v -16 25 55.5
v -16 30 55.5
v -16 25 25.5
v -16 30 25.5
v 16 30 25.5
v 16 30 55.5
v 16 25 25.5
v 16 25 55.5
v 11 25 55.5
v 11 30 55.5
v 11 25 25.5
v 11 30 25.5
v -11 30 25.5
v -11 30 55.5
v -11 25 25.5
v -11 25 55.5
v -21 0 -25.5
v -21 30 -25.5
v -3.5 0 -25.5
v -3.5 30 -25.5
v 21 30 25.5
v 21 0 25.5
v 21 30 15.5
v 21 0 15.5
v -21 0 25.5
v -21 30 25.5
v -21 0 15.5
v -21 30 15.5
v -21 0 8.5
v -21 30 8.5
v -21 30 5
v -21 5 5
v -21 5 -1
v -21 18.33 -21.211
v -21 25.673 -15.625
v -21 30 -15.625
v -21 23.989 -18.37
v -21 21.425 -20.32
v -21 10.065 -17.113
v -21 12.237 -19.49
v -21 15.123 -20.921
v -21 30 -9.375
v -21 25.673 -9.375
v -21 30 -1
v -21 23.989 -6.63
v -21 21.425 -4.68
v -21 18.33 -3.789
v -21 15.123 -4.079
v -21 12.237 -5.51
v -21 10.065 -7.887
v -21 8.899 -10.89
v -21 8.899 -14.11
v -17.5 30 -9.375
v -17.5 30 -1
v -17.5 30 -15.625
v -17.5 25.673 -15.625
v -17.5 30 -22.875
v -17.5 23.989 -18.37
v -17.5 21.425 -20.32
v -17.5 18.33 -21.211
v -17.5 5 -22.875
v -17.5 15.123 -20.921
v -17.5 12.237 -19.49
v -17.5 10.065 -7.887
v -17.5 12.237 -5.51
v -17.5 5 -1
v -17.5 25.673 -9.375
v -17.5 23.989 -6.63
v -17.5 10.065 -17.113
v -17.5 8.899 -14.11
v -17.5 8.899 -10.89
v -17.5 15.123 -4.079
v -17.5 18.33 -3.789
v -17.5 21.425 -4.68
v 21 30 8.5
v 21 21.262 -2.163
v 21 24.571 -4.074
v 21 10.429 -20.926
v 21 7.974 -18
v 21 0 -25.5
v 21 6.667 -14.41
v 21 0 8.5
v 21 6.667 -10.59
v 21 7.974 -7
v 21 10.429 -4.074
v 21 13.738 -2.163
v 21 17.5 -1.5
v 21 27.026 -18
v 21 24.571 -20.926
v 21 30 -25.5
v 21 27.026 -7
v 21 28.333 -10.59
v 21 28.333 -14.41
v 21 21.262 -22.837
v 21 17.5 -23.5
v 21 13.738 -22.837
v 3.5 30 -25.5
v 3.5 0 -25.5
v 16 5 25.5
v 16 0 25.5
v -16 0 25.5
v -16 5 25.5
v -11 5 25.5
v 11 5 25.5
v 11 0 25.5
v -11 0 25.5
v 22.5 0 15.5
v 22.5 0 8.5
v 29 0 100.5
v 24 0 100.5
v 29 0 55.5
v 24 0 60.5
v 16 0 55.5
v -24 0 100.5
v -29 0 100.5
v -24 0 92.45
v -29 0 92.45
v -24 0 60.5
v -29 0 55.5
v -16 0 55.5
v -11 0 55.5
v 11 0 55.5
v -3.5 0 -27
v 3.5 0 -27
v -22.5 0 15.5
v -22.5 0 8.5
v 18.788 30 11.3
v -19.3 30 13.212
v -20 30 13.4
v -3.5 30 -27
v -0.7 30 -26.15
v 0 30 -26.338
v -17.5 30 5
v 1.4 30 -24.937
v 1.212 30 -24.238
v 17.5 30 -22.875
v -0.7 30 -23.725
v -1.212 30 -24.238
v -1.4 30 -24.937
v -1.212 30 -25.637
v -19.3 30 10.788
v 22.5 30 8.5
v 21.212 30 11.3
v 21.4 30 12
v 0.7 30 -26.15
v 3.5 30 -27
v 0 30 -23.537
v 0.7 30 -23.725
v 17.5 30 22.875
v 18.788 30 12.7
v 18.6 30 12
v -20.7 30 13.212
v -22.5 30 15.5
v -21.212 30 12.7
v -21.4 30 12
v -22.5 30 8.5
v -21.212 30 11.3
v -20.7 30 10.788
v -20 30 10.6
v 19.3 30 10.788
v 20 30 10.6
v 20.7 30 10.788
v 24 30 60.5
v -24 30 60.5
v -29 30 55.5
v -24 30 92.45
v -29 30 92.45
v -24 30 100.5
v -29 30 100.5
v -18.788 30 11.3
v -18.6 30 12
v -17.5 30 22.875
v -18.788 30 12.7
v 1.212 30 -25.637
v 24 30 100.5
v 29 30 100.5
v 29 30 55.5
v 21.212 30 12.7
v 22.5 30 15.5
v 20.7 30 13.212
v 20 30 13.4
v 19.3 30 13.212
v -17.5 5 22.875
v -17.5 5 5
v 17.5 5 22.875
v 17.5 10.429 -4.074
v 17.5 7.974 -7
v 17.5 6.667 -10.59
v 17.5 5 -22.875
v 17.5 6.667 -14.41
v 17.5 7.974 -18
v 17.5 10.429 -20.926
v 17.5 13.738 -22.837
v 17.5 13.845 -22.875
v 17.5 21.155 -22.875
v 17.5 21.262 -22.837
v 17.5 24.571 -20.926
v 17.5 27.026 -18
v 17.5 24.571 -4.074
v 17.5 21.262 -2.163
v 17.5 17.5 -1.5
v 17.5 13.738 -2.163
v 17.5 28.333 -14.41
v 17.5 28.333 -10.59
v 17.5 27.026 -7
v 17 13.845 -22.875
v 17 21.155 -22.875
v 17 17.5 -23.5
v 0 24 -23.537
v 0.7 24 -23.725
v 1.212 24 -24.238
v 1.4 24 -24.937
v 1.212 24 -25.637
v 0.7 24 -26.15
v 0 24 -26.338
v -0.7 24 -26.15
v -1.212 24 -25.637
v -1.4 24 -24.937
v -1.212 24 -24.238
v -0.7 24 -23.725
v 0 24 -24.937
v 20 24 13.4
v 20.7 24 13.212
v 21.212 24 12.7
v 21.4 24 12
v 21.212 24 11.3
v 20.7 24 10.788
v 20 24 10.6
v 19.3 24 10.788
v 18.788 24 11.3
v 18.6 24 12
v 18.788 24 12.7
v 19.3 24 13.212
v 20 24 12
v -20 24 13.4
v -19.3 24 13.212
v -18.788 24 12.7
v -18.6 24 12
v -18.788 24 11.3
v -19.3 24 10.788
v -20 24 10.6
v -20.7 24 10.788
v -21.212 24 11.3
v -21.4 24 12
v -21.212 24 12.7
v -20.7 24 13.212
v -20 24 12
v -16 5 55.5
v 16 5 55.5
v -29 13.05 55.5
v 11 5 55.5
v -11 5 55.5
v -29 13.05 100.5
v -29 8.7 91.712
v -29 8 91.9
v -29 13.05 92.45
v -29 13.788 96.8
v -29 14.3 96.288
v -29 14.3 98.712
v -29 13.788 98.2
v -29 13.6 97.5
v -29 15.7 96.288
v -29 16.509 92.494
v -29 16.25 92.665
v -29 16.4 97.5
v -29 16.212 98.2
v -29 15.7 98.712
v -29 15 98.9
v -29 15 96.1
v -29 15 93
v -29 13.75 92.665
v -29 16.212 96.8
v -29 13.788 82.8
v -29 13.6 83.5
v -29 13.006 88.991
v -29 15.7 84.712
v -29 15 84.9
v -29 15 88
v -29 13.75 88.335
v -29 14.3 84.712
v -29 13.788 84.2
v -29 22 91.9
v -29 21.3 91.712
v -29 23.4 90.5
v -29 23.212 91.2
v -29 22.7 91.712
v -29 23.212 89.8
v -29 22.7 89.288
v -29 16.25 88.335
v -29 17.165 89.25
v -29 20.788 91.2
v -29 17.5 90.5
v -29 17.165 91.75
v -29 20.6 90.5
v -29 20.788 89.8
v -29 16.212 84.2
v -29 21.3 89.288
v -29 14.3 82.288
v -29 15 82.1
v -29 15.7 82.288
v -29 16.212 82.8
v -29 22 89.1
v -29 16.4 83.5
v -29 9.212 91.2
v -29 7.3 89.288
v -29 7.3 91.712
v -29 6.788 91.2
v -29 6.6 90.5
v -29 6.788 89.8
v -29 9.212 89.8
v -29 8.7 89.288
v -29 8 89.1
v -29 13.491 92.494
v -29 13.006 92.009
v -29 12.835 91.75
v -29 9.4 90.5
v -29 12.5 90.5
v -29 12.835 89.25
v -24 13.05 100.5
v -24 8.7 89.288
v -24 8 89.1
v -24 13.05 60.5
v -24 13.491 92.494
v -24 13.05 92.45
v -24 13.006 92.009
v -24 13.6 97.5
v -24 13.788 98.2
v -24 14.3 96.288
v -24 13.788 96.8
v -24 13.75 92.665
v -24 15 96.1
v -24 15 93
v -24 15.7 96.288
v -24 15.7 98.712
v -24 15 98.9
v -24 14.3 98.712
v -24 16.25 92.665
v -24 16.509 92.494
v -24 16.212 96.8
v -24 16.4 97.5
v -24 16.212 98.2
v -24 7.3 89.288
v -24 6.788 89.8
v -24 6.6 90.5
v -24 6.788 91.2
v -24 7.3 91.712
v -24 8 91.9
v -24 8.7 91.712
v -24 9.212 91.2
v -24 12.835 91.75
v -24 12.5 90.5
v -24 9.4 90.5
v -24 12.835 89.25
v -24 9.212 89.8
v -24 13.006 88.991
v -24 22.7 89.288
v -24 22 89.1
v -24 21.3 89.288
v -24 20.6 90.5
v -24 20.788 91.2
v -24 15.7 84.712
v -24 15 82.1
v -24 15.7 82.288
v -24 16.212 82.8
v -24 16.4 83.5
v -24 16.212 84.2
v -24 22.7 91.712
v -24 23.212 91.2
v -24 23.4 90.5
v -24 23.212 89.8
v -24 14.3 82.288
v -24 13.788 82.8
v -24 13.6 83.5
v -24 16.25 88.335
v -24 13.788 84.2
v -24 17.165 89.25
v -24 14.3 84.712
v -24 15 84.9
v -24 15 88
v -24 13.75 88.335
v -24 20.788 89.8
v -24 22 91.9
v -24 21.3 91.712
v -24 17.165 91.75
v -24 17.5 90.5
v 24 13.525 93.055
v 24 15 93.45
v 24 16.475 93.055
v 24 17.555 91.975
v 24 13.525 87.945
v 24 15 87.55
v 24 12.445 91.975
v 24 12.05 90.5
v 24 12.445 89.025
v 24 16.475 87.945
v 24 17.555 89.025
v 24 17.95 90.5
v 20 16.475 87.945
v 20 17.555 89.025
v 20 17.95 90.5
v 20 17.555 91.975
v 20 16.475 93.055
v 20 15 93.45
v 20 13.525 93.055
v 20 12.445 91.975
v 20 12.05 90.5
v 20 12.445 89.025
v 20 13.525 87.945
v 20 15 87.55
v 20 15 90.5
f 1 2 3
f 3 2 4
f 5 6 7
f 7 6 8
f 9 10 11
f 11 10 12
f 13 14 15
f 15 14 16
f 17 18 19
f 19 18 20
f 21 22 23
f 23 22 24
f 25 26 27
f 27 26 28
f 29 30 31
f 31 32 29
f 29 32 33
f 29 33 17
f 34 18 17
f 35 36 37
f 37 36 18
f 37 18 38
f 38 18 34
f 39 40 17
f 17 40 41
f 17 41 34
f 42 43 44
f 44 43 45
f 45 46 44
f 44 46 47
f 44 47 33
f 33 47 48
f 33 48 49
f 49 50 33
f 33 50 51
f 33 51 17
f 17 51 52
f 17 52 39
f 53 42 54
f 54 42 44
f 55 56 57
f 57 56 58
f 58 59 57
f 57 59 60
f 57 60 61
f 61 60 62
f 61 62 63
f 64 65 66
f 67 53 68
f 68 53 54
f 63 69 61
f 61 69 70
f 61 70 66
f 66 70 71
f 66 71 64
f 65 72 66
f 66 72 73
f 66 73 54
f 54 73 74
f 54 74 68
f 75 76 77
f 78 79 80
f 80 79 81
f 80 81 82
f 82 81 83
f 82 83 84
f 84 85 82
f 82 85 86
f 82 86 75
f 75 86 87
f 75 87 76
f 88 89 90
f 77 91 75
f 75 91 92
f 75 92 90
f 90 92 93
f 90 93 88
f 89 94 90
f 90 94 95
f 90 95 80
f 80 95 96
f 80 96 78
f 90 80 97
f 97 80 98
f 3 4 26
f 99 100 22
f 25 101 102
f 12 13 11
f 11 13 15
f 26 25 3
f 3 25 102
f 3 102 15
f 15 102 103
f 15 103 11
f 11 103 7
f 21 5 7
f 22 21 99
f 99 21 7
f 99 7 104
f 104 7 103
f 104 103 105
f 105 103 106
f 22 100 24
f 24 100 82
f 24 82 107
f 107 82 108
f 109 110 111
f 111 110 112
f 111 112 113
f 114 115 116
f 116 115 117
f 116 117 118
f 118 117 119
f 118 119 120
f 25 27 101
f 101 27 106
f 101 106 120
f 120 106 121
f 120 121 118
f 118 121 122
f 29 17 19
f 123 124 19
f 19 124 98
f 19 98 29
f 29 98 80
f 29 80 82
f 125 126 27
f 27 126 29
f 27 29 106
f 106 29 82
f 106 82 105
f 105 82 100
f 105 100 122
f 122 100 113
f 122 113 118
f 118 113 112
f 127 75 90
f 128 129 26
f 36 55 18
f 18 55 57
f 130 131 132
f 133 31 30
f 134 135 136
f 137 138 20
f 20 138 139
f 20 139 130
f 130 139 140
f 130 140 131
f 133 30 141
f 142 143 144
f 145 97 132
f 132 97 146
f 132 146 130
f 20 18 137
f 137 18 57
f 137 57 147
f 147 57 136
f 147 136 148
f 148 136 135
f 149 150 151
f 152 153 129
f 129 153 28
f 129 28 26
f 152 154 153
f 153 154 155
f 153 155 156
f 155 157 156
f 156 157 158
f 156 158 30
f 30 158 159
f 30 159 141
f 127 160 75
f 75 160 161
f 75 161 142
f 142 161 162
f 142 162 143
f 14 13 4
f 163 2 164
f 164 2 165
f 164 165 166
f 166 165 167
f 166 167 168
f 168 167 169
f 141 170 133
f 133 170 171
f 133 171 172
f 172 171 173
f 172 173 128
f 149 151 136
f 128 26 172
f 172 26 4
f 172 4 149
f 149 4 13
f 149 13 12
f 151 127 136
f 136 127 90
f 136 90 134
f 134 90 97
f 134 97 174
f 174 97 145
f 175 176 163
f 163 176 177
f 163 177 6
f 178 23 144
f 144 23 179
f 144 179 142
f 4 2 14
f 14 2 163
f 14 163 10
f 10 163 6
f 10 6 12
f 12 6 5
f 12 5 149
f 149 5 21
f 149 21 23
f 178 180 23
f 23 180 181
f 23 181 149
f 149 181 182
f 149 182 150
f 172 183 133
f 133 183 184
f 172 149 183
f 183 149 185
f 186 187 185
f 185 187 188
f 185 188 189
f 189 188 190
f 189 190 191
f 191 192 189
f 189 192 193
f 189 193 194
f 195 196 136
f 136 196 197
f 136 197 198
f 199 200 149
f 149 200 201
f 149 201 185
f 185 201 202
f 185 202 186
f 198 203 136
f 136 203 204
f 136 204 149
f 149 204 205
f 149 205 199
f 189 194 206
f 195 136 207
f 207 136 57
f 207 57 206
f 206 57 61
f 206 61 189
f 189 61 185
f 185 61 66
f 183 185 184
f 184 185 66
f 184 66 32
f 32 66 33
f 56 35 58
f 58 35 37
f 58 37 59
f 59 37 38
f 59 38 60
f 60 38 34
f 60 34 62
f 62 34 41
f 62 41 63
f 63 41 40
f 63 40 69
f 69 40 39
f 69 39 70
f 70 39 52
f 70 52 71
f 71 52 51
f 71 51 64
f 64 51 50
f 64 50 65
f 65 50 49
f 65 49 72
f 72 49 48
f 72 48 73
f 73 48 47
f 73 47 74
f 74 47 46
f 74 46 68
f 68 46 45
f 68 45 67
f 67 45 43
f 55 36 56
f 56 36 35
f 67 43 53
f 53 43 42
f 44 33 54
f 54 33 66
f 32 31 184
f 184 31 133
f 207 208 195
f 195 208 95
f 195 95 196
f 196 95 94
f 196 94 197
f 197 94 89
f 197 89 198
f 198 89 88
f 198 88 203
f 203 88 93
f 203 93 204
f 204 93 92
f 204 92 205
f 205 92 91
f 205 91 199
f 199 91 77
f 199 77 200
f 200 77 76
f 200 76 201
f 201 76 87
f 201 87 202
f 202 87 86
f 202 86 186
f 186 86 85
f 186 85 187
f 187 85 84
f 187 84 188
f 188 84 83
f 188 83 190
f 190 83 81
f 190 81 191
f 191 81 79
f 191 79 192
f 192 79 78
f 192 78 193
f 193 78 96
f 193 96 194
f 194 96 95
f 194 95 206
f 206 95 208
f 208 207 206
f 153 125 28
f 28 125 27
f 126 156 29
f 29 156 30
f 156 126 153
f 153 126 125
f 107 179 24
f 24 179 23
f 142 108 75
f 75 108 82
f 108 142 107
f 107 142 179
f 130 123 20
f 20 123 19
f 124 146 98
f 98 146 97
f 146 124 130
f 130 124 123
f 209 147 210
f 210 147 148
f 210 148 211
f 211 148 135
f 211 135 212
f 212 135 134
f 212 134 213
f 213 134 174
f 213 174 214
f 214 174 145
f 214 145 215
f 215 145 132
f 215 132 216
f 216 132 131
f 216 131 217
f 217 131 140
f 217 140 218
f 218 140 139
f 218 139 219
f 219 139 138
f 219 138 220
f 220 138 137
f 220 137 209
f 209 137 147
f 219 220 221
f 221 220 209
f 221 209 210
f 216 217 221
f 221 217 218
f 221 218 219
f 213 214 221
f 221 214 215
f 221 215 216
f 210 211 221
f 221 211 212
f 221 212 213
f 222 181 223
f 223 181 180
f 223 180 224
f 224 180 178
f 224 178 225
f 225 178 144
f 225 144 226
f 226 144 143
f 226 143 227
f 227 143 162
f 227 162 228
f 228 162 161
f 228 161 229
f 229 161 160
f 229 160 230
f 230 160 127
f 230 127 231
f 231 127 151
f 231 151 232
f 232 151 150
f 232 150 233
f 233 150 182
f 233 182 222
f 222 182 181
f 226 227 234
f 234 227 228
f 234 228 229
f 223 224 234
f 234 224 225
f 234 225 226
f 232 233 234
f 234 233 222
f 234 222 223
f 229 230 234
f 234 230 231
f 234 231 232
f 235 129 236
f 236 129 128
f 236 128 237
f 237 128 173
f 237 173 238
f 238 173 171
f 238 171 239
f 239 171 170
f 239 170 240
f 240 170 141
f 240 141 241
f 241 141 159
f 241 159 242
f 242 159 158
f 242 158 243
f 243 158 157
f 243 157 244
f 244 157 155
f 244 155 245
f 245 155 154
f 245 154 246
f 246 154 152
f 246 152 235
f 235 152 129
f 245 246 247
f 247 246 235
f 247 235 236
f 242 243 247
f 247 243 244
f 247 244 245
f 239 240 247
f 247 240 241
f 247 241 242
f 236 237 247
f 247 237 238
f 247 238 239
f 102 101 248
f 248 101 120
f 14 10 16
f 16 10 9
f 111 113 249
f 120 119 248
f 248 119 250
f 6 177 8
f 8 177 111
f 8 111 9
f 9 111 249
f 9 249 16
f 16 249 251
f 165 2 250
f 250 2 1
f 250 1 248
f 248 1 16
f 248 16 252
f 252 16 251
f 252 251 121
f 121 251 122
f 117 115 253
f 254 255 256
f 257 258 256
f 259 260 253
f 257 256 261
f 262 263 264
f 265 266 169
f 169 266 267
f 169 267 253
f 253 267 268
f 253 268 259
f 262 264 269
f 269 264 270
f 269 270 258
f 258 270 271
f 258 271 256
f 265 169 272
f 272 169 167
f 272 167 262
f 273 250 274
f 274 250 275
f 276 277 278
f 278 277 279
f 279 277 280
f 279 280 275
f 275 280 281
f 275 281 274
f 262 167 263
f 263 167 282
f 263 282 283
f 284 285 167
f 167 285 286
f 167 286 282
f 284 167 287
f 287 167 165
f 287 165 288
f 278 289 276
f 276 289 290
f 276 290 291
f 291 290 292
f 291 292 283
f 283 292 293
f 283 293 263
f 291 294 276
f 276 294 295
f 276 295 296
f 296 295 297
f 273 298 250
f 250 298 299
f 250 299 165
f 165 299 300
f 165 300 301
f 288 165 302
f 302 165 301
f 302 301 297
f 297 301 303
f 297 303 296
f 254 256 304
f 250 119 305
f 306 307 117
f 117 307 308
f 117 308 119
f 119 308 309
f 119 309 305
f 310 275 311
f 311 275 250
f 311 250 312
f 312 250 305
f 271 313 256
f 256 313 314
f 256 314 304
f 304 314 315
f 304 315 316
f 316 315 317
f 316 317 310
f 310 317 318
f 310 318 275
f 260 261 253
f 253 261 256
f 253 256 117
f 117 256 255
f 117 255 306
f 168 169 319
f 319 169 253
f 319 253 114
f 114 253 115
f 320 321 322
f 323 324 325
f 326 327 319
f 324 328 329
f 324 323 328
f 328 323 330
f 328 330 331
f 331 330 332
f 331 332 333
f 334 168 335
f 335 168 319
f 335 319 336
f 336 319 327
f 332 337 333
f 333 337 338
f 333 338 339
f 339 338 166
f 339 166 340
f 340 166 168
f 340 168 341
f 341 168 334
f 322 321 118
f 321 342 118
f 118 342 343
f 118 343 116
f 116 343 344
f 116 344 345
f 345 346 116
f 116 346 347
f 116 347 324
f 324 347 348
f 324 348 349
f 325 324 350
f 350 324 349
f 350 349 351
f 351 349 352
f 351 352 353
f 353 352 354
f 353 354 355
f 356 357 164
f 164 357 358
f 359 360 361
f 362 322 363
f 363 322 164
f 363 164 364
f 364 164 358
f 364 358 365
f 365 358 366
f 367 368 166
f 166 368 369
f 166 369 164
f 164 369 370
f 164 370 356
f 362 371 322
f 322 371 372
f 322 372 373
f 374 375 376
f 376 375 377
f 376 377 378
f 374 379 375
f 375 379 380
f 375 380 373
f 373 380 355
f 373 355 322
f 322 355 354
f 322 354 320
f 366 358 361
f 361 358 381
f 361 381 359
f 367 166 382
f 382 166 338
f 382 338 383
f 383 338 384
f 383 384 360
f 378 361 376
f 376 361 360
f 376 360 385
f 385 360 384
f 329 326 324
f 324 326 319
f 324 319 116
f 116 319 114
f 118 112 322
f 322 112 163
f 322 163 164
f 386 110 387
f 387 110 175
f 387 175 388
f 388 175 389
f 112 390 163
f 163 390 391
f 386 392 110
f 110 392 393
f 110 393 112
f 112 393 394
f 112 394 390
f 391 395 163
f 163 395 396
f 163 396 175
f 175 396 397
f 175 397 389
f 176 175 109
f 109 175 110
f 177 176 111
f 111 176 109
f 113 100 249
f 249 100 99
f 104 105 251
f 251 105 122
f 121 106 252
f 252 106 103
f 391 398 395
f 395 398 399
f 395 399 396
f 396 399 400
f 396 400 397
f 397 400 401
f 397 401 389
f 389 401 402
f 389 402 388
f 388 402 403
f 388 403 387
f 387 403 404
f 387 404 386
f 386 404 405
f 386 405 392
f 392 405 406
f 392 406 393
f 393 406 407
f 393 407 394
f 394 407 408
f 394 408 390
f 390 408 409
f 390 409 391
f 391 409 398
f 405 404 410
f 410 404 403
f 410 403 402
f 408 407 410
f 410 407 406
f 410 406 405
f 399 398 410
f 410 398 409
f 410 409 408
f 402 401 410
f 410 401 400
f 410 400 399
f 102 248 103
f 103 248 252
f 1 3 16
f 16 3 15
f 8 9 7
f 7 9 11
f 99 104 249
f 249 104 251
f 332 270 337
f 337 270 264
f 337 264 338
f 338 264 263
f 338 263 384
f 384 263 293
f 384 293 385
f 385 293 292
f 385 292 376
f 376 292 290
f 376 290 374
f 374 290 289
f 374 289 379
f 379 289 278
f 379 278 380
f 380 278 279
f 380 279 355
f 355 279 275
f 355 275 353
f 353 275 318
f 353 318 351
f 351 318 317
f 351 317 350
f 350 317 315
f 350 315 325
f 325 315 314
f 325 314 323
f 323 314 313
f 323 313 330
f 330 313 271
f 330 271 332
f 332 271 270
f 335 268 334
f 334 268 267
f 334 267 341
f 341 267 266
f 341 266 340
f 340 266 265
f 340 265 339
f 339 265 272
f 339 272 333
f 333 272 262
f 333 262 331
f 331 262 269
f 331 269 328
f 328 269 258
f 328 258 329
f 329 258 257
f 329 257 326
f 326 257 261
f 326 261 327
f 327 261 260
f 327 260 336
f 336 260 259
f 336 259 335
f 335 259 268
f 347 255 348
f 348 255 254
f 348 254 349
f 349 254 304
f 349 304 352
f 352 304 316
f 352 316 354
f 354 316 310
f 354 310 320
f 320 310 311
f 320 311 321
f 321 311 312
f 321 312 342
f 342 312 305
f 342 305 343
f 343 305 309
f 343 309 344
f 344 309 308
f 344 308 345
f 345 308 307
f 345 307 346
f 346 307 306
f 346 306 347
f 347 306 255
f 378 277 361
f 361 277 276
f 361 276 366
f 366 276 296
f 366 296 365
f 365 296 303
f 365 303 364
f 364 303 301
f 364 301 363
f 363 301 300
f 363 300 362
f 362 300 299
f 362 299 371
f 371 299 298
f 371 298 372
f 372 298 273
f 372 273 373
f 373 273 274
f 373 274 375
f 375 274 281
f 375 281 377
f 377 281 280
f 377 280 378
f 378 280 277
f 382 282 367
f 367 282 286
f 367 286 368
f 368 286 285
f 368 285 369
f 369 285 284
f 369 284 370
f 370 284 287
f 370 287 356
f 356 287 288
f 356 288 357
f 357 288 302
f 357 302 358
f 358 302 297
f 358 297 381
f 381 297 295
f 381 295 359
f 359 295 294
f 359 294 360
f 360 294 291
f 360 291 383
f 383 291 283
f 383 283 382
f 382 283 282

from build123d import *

# Parameters (mm, degrees)
BOSS_EXTRUDE1_DEPTH = 5
SKETCH3_W           = 42
SKETCH3_H           = 51
SKETCH3_W_2         = 35
SKETCH3_H_2         = 45.75
BOSS_EXTRUDE3_DEPTH = 25
SKETCH4_R           = 8.75
CUT_EXTRUDE2_DEPTH  = 5
CUT_EXTRUDE3_DEPTH  = 4
SKETCH7_W           = 6
SKETCH7_H           = 25
CUT_EXTRUDE4_DEPTH  = 4
SKETCH9_R           = 11
CUT_EXTRUDE5_DEPTH  = 4
SKETCH16_W          = 7
SKETCH16_H          = 30
BOSS_EXTRUDE5_DEPTH = 1.5
SKETCH17_W          = 7
SKETCH17_H          = 30
BOSS_EXTRUDE6_DEPTH = 1.5
SKETCH19_W          = 7
SKETCH19_H          = 30
BOSS_EXTRUDE7_DEPTH = 1.5
SKETCH18_R          = 1.4
CUT_EXTRUDE7_DEPTH  = 6
SKETCH1_3_W         = 5
SKETCH1_3_H         = 30
SKETCH1_3_H_2       = 40
BOSS_EXTRUDE8_DEPTH = 30
SKETCH21_R          = 2.95
BOSS_EXTRUDE9_DEPTH = 4
SKETCH24_W          = 30
SKETCH24_H          = 20
CUT_EXTRUDE8_DEPTH  = 32
SKETCH25_R          = 2.5
SKETCH25_R_2        = 1.4
CUT_EXTRUDE9_DEPTH  = 5


with BuildPart() as part:
    # Sketch1 → Boss-Extrude1 (new body)
    with BuildSketch(Plane(origin=(0, 0, 0), x_dir=(1, 0, 0), z_dir=(0, 1, 0))):
        Polygon((21, 25.5), (-21, 25.5), (-21, -25.5), (-16, -25.5), (-11, -25.5), (11, -25.5), (16, -25.5), (21, -25.5), align=None)
    extrude(amount=BOSS_EXTRUDE1_DEPTH)

    # Sketch3 → Boss-Extrude3 (add)
    with BuildSketch(Plane(origin=(0, 5, 0), x_dir=(1, 0, 0), z_dir=(0, 1, 0))):
        Rectangle(SKETCH3_W, SKETCH3_H)
        Rectangle(SKETCH3_W_2, SKETCH3_H_2, mode=Mode.SUBTRACT)
    extrude(amount=BOSS_EXTRUDE3_DEPTH)

    # Sketch4 → Cut-Extrude2 (cut)
    with BuildSketch(Plane.ZY.offset(21)):
        with Locations((-12.5, 17.5)):
            Circle(SKETCH4_R)
    extrude(amount=-CUT_EXTRUDE2_DEPTH, mode=Mode.SUBTRACT)

    # Sketch6 → Cut-Extrude3 (cut)
    with BuildSketch(Plane(origin=(-17.5, 0, 0), x_dir=(0, 0, -1), z_dir=(1, 0, 0))):
        with BuildLine():
            Line((9.375, 17.5), (9.375, 30))
            Line((9.375, 30), (15.625, 30))
            Line((15.625, 30), (15.625, 17.5))
            ThreePointArc((15.625, 17.5), (12.5, 14.375), (9.375, 17.5))
        make_face()
    extrude(amount=-CUT_EXTRUDE3_DEPTH, mode=Mode.SUBTRACT)

    # Sketch7 → Cut-Extrude4 (cut)
    with BuildSketch(Plane.ZY.offset(21)):
        with Locations((2, 17.5)):
            Rectangle(SKETCH7_W, SKETCH7_H)
    extrude(amount=-CUT_EXTRUDE4_DEPTH, mode=Mode.SUBTRACT)

    # Sketch9 → Cut-Extrude5 (cut)
    with BuildSketch(Plane(origin=(21, 0, 0), x_dir=(0, 0, -1), z_dir=(1, 0, 0))):
        with Locations((12.5, 17.5)):
            Circle(SKETCH9_R)
    extrude(amount=-CUT_EXTRUDE5_DEPTH, mode=Mode.SUBTRACT)

    # Sketch16 → Boss-Extrude5 (add)
    with BuildSketch(Plane.ZY.offset(21)):
        with Locations((12, 15)):
            Rectangle(SKETCH16_W, SKETCH16_H)
    extrude(amount=BOSS_EXTRUDE5_DEPTH)

    # Sketch17 → Boss-Extrude6 (add)
    with BuildSketch(Plane(origin=(21, 0, 0), x_dir=(0, 0, -1), z_dir=(1, 0, 0))):
        with Locations((-12, 15)):
            Rectangle(SKETCH17_W, SKETCH17_H)
    extrude(amount=BOSS_EXTRUDE6_DEPTH)

    # Sketch19 → Boss-Extrude7 (add)
    with BuildSketch(Plane(origin=(0, 0, -25.5), x_dir=(-1, 0, 0), z_dir=(0, 0, -1))):
        with Locations((0, 15)):
            Rectangle(SKETCH19_W, SKETCH19_H)
    extrude(amount=BOSS_EXTRUDE7_DEPTH)

    # Sketch18 → Cut-Extrude7 (cut)
    with BuildSketch(Plane(origin=(0, 30, 0), x_dir=(1, 0, 0), z_dir=(0, 1, 0))):
        with Locations((-20, -12)):
            Circle(SKETCH18_R)
        with Locations((20, -12)):
            Circle(SKETCH18_R)
        with Locations((0, 24.9375)):
            Circle(SKETCH18_R)
    extrude(amount=-CUT_EXTRUDE7_DEPTH, mode=Mode.SUBTRACT)

    # Sketch1<3> → Boss-Extrude8 (add)
    with BuildSketch(Plane(origin=(0, 0, 0), x_dir=(1, 0, 0), z_dir=(0, 1, 0))):
        with Locations((-13.5, -40.5)):
            Rectangle(SKETCH1_3_W, SKETCH1_3_H)
        with Locations((13.5, -40.5)):
            Rectangle(SKETCH1_3_W, SKETCH1_3_H)
        Polygon((-11, -55.5), (-16, -55.5), (-29, -55.5), (-29, -60.5), (-24, -60.5), (24, -60.5), (29, -60.5), (29, -55.5), (16, -55.5), (11, -55.5), align=None)
        with Locations((26.5, -80.5)):
            Rectangle(SKETCH1_3_W, SKETCH1_3_H_2)
        with Locations((-26.5, -80.5)):
            Rectangle(SKETCH1_3_W, SKETCH1_3_H_2)
    extrude(amount=BOSS_EXTRUDE8_DEPTH)

    # Sketch21 → Boss-Extrude9 (add)
    with BuildSketch(Plane.ZY.offset(-24)):
        with Locations((90.5, 15)):
            Circle(SKETCH21_R)
    extrude(amount=BOSS_EXTRUDE9_DEPTH)

    # Sketch24 → Cut-Extrude8 (cut)
    with BuildSketch(Plane.ZY.offset(16)):
        with Locations((40.5, 15)):
            Rectangle(SKETCH24_W, SKETCH24_H)
    extrude(amount=-CUT_EXTRUDE8_DEPTH, mode=Mode.SUBTRACT)

    # Sketch25 → Cut-Extrude9 (cut)
    with BuildSketch(Plane.ZY.offset(29)):
        with Locations((90.5, 15)):
            Circle(SKETCH25_R)
        with Locations((90.5, 22)):
            Circle(SKETCH25_R_2)
        with Locations((83.5, 15)):
            Circle(SKETCH25_R_2)
        with Locations((90.5, 8)):
            Circle(SKETCH25_R_2)
        with Locations((97.5, 15)):
            Circle(SKETCH25_R_2)
    extrude(amount=-CUT_EXTRUDE9_DEPTH, mode=Mode.SUBTRACT)


solid = part.part
